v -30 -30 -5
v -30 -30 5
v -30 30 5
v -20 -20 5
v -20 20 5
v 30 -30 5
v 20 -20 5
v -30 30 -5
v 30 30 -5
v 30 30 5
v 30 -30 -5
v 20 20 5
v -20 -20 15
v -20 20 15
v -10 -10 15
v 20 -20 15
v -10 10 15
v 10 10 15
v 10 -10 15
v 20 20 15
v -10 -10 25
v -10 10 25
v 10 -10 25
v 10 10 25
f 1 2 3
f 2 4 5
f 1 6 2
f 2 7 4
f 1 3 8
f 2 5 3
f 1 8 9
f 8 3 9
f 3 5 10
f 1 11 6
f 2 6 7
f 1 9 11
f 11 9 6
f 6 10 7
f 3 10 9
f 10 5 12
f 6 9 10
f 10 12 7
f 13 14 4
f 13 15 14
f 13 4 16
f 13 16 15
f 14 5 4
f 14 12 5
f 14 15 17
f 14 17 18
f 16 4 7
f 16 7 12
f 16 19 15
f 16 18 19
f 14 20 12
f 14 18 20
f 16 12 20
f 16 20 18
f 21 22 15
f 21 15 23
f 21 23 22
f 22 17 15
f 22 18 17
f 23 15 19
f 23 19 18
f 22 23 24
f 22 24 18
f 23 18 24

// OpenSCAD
// 1段目（底面）
translate([0, 0, 0])
cube([60, 60, 10], center=true);

// 2段目（中段）
translate([0, 0, 10])
cube([40, 40, 10], center=true);

// 3段目（頂上）
translate([0, 0, 20])
cube([20, 20, 10], center=true);
